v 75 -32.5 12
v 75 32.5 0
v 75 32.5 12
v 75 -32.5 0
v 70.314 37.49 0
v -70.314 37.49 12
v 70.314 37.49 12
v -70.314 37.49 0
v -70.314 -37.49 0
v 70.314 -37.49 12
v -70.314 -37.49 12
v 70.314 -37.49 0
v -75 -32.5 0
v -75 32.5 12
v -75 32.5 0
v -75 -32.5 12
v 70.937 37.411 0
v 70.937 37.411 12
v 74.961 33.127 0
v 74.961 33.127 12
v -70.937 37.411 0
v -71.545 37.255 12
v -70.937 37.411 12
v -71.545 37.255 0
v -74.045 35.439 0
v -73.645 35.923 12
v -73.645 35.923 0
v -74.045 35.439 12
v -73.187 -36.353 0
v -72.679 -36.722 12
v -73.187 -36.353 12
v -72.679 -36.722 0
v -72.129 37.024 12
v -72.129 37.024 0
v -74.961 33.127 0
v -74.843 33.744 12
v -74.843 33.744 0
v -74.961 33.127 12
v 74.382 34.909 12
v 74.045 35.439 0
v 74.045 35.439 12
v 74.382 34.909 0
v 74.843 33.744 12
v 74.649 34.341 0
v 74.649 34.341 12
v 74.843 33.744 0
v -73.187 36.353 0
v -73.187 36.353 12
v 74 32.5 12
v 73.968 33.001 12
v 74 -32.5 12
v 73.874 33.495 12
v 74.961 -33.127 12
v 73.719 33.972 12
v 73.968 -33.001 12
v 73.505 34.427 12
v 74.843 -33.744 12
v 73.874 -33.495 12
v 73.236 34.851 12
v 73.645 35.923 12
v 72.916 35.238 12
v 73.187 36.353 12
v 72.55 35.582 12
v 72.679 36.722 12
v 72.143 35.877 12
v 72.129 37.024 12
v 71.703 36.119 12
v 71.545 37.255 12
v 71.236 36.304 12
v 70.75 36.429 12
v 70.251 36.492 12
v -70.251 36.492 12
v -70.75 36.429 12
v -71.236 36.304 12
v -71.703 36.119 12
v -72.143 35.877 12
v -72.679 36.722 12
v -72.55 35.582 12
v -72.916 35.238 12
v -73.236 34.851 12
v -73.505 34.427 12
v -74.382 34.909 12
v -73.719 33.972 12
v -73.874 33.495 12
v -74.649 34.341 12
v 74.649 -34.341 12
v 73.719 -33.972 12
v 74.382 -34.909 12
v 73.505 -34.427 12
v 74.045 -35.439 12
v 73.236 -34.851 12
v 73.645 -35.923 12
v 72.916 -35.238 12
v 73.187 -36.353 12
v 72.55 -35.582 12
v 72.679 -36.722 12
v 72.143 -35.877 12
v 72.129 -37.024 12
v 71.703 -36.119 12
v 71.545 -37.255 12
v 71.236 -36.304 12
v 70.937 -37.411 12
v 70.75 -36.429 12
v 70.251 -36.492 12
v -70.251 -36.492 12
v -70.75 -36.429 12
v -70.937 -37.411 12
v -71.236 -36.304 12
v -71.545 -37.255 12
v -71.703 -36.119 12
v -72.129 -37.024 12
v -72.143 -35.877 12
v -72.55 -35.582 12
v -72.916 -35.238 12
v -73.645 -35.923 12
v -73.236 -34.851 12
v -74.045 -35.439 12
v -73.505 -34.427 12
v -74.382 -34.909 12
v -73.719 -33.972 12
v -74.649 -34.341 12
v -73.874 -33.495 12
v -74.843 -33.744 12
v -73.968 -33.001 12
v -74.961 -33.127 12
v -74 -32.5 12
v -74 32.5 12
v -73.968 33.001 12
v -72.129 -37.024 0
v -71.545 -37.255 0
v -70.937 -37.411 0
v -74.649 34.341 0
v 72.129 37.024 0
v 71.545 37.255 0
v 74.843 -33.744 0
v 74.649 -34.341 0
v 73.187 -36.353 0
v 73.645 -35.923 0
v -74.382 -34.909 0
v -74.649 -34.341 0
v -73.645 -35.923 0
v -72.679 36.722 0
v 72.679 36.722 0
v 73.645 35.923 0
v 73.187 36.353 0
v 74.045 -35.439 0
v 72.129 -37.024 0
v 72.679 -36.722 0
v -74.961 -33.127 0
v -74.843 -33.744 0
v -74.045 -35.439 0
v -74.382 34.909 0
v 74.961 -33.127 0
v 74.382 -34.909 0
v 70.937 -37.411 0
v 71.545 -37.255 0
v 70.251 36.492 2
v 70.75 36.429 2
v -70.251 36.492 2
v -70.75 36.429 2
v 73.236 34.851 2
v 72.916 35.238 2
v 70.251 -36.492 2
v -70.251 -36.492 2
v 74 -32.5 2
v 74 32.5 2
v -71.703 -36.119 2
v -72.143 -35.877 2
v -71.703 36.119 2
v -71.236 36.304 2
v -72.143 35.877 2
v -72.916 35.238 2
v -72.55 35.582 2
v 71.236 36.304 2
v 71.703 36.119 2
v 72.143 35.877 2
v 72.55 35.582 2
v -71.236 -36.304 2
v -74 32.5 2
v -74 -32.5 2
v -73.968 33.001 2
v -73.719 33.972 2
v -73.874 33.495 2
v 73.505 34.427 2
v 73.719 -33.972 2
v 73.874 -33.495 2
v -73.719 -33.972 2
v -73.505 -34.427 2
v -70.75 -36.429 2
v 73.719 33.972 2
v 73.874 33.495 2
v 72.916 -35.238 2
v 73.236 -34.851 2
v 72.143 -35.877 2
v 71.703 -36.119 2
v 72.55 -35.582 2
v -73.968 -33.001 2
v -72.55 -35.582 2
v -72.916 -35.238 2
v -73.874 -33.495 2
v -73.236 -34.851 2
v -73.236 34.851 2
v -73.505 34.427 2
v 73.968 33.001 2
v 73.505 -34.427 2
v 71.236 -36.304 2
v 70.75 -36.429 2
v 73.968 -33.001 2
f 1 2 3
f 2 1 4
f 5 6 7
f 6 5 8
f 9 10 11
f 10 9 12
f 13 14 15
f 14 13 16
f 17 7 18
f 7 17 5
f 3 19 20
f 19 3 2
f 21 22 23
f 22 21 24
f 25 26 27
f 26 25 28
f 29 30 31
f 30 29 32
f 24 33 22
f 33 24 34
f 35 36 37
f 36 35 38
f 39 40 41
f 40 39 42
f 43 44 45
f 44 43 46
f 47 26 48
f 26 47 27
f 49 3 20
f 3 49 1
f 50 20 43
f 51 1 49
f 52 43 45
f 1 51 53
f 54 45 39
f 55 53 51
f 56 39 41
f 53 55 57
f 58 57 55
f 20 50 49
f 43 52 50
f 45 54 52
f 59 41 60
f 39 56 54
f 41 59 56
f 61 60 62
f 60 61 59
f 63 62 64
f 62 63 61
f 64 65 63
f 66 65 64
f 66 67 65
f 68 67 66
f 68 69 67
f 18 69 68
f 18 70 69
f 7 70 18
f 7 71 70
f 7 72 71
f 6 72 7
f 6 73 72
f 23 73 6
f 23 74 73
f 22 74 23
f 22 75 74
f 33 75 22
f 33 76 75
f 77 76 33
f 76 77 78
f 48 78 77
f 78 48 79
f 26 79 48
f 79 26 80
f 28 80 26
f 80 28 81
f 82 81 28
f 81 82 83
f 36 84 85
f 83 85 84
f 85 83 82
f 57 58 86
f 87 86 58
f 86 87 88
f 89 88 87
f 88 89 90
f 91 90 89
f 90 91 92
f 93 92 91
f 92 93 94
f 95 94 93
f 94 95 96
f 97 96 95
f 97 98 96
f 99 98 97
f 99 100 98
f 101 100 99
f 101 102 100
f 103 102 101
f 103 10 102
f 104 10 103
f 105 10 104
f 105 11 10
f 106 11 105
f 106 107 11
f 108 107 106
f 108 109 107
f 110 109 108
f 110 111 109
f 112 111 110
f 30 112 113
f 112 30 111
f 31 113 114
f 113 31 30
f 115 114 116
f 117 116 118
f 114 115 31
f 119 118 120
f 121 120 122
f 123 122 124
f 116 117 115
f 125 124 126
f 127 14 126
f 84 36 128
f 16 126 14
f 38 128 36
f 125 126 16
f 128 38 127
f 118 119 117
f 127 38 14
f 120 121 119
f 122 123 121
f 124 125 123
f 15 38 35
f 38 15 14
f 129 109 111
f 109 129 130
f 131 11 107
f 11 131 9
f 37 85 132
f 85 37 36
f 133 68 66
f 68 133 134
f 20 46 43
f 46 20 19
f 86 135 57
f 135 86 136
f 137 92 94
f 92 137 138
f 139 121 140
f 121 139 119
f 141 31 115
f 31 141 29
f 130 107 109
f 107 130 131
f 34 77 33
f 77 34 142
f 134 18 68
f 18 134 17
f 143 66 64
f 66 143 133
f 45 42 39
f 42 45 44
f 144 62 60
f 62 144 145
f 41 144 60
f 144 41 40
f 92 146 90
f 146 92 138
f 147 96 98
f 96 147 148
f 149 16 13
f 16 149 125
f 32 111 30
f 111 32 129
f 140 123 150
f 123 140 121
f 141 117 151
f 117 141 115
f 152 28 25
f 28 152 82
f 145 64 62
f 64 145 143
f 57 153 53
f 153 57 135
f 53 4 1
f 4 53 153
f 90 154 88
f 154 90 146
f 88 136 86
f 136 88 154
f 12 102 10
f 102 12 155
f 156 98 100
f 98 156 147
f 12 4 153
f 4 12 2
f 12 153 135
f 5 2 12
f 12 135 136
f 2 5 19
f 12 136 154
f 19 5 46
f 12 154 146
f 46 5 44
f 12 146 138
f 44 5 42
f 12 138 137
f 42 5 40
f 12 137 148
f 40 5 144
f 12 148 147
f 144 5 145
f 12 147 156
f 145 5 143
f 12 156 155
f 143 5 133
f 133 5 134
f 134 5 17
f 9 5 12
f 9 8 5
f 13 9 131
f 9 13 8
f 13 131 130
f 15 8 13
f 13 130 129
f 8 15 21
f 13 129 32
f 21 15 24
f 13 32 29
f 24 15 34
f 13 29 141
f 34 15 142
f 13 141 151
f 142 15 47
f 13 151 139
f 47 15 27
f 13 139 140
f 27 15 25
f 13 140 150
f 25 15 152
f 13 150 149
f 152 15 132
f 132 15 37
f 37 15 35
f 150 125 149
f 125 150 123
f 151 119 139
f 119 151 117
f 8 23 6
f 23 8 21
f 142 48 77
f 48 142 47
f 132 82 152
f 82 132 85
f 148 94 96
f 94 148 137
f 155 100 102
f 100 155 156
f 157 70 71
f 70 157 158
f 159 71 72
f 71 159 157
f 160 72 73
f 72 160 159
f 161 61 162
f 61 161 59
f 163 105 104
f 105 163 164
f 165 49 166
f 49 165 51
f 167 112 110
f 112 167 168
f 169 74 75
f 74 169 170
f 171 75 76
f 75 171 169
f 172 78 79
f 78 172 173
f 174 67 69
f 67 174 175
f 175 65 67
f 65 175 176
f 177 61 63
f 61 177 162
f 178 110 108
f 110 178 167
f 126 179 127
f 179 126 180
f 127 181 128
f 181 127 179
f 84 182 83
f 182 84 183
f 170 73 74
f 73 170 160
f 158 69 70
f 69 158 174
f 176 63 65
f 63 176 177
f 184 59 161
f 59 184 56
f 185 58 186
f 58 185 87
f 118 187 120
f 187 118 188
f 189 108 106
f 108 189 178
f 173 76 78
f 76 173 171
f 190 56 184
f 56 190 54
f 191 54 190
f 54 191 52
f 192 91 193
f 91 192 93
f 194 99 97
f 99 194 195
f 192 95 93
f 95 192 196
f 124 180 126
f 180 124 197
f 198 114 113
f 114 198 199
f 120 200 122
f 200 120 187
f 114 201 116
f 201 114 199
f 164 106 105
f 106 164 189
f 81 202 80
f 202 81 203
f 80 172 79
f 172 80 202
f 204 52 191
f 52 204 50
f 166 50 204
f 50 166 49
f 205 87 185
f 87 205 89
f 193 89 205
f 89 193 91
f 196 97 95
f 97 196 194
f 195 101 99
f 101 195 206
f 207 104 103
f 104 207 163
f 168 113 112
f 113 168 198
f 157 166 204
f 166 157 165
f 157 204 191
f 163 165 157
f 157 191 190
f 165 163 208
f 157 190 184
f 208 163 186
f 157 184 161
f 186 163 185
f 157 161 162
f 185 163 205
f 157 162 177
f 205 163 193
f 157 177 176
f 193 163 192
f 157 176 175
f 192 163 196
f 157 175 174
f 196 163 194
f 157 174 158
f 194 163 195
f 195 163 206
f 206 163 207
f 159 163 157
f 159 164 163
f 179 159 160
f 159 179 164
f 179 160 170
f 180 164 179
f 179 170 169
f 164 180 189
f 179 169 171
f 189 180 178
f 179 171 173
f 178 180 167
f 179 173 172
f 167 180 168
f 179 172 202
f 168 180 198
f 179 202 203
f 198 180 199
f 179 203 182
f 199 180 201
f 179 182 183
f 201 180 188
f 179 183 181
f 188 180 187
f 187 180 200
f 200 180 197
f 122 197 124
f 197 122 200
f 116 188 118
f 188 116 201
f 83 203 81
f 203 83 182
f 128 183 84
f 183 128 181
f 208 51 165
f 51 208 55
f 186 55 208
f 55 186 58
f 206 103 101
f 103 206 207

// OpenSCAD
$fn = 50;


difference() {
	union() {
		hull() {
			translate(v = [-70.0000000000, 32.5000000000, 0]) {
				cylinder(h = 12, r = 5);
			}
			translate(v = [70.0000000000, 32.5000000000, 0]) {
				cylinder(h = 12, r = 5);
			}
			translate(v = [-70.0000000000, -32.5000000000, 0]) {
				cylinder(h = 12, r = 5);
			}
			translate(v = [70.0000000000, -32.5000000000, 0]) {
				cylinder(h = 12, r = 5);
			}
		}
	}
	union() {
		translate(v = [0, 0, 2]) {
			hull() {
				translate(v = [-70.0000000000, 32.5000000000, 0]) {
					cylinder(h = 10, r = 4);
				}
				translate(v = [70.0000000000, 32.5000000000, 0]) {
					cylinder(h = 10, r = 4);
				}
				translate(v = [-70.0000000000, -32.5000000000, 0]) {
					cylinder(h = 10, r = 4);
				}
				translate(v = [70.0000000000, -32.5000000000, 0]) {
					cylinder(h = 10, r = 4);
				}
			}
		}
	}
}
